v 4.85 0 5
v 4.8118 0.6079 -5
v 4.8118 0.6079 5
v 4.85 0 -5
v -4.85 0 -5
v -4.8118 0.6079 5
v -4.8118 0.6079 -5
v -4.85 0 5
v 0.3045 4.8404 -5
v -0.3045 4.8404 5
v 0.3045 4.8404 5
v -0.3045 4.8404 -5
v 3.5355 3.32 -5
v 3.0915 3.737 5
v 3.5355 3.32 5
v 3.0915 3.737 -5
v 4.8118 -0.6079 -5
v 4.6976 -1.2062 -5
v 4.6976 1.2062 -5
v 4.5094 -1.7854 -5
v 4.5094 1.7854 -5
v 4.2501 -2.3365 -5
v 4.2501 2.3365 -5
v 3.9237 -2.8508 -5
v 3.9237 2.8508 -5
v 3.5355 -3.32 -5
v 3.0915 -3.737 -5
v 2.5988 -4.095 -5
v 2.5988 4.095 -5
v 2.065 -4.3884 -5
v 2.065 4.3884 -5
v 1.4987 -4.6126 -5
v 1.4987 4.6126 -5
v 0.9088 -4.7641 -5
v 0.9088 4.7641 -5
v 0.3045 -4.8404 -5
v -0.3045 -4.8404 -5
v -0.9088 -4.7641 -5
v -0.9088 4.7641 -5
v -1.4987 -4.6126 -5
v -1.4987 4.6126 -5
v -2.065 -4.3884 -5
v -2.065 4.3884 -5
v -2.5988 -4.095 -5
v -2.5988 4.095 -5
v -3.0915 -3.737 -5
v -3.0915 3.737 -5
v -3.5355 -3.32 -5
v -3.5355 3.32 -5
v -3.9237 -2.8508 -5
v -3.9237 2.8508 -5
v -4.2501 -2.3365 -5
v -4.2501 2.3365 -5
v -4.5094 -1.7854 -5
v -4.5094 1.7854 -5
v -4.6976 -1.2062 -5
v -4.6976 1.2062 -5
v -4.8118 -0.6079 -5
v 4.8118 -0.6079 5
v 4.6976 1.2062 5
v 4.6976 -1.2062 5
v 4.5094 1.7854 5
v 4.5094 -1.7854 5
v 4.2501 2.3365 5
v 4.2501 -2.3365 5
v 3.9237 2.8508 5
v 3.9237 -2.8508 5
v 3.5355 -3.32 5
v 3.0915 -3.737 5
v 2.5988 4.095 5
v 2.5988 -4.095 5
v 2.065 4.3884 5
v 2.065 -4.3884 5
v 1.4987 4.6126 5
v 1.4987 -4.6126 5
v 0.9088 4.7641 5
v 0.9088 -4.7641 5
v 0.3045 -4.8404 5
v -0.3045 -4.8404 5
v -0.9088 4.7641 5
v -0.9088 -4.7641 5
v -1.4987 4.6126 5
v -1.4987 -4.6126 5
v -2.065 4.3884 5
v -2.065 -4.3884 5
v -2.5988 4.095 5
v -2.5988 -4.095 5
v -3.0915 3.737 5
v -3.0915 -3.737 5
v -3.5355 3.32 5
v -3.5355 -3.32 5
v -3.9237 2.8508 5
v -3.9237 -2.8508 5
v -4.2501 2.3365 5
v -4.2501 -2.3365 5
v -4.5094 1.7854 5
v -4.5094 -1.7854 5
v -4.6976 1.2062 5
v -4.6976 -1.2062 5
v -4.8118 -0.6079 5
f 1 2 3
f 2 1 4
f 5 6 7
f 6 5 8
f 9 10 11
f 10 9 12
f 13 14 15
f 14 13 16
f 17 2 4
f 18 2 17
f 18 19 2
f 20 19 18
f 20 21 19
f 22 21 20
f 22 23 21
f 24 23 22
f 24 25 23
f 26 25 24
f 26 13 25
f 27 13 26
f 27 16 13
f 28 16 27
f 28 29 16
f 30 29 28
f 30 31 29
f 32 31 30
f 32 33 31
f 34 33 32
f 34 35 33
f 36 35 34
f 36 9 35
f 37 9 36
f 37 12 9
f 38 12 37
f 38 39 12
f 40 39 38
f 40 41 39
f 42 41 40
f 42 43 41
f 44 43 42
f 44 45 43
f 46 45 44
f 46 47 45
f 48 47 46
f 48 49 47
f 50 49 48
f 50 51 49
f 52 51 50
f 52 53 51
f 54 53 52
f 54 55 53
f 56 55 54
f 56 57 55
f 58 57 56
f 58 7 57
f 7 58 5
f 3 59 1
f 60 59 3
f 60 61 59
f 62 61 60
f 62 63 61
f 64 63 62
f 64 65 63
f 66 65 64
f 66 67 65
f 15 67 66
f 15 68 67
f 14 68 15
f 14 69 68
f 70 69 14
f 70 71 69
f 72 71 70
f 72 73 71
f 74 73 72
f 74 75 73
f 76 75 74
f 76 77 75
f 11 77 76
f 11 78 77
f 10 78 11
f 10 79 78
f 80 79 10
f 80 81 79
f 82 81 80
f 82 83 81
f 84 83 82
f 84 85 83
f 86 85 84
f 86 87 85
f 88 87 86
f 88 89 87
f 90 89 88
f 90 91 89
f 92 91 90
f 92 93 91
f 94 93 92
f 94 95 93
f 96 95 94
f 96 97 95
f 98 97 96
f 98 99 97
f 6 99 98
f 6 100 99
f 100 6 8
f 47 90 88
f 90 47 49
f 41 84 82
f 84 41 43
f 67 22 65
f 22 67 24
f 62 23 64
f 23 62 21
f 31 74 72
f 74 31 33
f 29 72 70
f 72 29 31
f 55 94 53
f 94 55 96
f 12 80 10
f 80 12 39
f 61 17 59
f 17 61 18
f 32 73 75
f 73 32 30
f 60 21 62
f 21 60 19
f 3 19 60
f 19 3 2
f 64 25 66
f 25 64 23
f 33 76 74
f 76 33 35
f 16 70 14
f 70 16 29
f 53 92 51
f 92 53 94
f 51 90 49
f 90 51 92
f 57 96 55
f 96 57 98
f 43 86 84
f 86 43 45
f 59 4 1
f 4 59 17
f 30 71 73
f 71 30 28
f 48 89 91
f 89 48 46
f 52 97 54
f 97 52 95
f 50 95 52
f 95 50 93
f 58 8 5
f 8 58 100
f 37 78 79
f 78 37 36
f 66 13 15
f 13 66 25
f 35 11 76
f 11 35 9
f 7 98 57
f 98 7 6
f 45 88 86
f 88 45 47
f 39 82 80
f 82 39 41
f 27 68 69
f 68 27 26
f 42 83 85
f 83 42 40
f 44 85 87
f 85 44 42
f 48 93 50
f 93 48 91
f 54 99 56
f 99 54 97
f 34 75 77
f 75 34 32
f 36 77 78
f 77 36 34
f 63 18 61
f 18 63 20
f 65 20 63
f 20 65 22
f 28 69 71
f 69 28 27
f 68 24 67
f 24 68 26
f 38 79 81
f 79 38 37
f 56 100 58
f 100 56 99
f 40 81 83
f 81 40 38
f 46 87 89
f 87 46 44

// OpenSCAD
$fn = 50;


difference() {
	union() {
		translate(v = [0, 0, -5.0000000000]) {
			cylinder(h = 10, r = 4.8500000000);
		}
	}
	union() {
		translate(v = [0, 0, -100.0000000000]) {
			cylinder(h = 200, r = 0);
		}
	}
}
